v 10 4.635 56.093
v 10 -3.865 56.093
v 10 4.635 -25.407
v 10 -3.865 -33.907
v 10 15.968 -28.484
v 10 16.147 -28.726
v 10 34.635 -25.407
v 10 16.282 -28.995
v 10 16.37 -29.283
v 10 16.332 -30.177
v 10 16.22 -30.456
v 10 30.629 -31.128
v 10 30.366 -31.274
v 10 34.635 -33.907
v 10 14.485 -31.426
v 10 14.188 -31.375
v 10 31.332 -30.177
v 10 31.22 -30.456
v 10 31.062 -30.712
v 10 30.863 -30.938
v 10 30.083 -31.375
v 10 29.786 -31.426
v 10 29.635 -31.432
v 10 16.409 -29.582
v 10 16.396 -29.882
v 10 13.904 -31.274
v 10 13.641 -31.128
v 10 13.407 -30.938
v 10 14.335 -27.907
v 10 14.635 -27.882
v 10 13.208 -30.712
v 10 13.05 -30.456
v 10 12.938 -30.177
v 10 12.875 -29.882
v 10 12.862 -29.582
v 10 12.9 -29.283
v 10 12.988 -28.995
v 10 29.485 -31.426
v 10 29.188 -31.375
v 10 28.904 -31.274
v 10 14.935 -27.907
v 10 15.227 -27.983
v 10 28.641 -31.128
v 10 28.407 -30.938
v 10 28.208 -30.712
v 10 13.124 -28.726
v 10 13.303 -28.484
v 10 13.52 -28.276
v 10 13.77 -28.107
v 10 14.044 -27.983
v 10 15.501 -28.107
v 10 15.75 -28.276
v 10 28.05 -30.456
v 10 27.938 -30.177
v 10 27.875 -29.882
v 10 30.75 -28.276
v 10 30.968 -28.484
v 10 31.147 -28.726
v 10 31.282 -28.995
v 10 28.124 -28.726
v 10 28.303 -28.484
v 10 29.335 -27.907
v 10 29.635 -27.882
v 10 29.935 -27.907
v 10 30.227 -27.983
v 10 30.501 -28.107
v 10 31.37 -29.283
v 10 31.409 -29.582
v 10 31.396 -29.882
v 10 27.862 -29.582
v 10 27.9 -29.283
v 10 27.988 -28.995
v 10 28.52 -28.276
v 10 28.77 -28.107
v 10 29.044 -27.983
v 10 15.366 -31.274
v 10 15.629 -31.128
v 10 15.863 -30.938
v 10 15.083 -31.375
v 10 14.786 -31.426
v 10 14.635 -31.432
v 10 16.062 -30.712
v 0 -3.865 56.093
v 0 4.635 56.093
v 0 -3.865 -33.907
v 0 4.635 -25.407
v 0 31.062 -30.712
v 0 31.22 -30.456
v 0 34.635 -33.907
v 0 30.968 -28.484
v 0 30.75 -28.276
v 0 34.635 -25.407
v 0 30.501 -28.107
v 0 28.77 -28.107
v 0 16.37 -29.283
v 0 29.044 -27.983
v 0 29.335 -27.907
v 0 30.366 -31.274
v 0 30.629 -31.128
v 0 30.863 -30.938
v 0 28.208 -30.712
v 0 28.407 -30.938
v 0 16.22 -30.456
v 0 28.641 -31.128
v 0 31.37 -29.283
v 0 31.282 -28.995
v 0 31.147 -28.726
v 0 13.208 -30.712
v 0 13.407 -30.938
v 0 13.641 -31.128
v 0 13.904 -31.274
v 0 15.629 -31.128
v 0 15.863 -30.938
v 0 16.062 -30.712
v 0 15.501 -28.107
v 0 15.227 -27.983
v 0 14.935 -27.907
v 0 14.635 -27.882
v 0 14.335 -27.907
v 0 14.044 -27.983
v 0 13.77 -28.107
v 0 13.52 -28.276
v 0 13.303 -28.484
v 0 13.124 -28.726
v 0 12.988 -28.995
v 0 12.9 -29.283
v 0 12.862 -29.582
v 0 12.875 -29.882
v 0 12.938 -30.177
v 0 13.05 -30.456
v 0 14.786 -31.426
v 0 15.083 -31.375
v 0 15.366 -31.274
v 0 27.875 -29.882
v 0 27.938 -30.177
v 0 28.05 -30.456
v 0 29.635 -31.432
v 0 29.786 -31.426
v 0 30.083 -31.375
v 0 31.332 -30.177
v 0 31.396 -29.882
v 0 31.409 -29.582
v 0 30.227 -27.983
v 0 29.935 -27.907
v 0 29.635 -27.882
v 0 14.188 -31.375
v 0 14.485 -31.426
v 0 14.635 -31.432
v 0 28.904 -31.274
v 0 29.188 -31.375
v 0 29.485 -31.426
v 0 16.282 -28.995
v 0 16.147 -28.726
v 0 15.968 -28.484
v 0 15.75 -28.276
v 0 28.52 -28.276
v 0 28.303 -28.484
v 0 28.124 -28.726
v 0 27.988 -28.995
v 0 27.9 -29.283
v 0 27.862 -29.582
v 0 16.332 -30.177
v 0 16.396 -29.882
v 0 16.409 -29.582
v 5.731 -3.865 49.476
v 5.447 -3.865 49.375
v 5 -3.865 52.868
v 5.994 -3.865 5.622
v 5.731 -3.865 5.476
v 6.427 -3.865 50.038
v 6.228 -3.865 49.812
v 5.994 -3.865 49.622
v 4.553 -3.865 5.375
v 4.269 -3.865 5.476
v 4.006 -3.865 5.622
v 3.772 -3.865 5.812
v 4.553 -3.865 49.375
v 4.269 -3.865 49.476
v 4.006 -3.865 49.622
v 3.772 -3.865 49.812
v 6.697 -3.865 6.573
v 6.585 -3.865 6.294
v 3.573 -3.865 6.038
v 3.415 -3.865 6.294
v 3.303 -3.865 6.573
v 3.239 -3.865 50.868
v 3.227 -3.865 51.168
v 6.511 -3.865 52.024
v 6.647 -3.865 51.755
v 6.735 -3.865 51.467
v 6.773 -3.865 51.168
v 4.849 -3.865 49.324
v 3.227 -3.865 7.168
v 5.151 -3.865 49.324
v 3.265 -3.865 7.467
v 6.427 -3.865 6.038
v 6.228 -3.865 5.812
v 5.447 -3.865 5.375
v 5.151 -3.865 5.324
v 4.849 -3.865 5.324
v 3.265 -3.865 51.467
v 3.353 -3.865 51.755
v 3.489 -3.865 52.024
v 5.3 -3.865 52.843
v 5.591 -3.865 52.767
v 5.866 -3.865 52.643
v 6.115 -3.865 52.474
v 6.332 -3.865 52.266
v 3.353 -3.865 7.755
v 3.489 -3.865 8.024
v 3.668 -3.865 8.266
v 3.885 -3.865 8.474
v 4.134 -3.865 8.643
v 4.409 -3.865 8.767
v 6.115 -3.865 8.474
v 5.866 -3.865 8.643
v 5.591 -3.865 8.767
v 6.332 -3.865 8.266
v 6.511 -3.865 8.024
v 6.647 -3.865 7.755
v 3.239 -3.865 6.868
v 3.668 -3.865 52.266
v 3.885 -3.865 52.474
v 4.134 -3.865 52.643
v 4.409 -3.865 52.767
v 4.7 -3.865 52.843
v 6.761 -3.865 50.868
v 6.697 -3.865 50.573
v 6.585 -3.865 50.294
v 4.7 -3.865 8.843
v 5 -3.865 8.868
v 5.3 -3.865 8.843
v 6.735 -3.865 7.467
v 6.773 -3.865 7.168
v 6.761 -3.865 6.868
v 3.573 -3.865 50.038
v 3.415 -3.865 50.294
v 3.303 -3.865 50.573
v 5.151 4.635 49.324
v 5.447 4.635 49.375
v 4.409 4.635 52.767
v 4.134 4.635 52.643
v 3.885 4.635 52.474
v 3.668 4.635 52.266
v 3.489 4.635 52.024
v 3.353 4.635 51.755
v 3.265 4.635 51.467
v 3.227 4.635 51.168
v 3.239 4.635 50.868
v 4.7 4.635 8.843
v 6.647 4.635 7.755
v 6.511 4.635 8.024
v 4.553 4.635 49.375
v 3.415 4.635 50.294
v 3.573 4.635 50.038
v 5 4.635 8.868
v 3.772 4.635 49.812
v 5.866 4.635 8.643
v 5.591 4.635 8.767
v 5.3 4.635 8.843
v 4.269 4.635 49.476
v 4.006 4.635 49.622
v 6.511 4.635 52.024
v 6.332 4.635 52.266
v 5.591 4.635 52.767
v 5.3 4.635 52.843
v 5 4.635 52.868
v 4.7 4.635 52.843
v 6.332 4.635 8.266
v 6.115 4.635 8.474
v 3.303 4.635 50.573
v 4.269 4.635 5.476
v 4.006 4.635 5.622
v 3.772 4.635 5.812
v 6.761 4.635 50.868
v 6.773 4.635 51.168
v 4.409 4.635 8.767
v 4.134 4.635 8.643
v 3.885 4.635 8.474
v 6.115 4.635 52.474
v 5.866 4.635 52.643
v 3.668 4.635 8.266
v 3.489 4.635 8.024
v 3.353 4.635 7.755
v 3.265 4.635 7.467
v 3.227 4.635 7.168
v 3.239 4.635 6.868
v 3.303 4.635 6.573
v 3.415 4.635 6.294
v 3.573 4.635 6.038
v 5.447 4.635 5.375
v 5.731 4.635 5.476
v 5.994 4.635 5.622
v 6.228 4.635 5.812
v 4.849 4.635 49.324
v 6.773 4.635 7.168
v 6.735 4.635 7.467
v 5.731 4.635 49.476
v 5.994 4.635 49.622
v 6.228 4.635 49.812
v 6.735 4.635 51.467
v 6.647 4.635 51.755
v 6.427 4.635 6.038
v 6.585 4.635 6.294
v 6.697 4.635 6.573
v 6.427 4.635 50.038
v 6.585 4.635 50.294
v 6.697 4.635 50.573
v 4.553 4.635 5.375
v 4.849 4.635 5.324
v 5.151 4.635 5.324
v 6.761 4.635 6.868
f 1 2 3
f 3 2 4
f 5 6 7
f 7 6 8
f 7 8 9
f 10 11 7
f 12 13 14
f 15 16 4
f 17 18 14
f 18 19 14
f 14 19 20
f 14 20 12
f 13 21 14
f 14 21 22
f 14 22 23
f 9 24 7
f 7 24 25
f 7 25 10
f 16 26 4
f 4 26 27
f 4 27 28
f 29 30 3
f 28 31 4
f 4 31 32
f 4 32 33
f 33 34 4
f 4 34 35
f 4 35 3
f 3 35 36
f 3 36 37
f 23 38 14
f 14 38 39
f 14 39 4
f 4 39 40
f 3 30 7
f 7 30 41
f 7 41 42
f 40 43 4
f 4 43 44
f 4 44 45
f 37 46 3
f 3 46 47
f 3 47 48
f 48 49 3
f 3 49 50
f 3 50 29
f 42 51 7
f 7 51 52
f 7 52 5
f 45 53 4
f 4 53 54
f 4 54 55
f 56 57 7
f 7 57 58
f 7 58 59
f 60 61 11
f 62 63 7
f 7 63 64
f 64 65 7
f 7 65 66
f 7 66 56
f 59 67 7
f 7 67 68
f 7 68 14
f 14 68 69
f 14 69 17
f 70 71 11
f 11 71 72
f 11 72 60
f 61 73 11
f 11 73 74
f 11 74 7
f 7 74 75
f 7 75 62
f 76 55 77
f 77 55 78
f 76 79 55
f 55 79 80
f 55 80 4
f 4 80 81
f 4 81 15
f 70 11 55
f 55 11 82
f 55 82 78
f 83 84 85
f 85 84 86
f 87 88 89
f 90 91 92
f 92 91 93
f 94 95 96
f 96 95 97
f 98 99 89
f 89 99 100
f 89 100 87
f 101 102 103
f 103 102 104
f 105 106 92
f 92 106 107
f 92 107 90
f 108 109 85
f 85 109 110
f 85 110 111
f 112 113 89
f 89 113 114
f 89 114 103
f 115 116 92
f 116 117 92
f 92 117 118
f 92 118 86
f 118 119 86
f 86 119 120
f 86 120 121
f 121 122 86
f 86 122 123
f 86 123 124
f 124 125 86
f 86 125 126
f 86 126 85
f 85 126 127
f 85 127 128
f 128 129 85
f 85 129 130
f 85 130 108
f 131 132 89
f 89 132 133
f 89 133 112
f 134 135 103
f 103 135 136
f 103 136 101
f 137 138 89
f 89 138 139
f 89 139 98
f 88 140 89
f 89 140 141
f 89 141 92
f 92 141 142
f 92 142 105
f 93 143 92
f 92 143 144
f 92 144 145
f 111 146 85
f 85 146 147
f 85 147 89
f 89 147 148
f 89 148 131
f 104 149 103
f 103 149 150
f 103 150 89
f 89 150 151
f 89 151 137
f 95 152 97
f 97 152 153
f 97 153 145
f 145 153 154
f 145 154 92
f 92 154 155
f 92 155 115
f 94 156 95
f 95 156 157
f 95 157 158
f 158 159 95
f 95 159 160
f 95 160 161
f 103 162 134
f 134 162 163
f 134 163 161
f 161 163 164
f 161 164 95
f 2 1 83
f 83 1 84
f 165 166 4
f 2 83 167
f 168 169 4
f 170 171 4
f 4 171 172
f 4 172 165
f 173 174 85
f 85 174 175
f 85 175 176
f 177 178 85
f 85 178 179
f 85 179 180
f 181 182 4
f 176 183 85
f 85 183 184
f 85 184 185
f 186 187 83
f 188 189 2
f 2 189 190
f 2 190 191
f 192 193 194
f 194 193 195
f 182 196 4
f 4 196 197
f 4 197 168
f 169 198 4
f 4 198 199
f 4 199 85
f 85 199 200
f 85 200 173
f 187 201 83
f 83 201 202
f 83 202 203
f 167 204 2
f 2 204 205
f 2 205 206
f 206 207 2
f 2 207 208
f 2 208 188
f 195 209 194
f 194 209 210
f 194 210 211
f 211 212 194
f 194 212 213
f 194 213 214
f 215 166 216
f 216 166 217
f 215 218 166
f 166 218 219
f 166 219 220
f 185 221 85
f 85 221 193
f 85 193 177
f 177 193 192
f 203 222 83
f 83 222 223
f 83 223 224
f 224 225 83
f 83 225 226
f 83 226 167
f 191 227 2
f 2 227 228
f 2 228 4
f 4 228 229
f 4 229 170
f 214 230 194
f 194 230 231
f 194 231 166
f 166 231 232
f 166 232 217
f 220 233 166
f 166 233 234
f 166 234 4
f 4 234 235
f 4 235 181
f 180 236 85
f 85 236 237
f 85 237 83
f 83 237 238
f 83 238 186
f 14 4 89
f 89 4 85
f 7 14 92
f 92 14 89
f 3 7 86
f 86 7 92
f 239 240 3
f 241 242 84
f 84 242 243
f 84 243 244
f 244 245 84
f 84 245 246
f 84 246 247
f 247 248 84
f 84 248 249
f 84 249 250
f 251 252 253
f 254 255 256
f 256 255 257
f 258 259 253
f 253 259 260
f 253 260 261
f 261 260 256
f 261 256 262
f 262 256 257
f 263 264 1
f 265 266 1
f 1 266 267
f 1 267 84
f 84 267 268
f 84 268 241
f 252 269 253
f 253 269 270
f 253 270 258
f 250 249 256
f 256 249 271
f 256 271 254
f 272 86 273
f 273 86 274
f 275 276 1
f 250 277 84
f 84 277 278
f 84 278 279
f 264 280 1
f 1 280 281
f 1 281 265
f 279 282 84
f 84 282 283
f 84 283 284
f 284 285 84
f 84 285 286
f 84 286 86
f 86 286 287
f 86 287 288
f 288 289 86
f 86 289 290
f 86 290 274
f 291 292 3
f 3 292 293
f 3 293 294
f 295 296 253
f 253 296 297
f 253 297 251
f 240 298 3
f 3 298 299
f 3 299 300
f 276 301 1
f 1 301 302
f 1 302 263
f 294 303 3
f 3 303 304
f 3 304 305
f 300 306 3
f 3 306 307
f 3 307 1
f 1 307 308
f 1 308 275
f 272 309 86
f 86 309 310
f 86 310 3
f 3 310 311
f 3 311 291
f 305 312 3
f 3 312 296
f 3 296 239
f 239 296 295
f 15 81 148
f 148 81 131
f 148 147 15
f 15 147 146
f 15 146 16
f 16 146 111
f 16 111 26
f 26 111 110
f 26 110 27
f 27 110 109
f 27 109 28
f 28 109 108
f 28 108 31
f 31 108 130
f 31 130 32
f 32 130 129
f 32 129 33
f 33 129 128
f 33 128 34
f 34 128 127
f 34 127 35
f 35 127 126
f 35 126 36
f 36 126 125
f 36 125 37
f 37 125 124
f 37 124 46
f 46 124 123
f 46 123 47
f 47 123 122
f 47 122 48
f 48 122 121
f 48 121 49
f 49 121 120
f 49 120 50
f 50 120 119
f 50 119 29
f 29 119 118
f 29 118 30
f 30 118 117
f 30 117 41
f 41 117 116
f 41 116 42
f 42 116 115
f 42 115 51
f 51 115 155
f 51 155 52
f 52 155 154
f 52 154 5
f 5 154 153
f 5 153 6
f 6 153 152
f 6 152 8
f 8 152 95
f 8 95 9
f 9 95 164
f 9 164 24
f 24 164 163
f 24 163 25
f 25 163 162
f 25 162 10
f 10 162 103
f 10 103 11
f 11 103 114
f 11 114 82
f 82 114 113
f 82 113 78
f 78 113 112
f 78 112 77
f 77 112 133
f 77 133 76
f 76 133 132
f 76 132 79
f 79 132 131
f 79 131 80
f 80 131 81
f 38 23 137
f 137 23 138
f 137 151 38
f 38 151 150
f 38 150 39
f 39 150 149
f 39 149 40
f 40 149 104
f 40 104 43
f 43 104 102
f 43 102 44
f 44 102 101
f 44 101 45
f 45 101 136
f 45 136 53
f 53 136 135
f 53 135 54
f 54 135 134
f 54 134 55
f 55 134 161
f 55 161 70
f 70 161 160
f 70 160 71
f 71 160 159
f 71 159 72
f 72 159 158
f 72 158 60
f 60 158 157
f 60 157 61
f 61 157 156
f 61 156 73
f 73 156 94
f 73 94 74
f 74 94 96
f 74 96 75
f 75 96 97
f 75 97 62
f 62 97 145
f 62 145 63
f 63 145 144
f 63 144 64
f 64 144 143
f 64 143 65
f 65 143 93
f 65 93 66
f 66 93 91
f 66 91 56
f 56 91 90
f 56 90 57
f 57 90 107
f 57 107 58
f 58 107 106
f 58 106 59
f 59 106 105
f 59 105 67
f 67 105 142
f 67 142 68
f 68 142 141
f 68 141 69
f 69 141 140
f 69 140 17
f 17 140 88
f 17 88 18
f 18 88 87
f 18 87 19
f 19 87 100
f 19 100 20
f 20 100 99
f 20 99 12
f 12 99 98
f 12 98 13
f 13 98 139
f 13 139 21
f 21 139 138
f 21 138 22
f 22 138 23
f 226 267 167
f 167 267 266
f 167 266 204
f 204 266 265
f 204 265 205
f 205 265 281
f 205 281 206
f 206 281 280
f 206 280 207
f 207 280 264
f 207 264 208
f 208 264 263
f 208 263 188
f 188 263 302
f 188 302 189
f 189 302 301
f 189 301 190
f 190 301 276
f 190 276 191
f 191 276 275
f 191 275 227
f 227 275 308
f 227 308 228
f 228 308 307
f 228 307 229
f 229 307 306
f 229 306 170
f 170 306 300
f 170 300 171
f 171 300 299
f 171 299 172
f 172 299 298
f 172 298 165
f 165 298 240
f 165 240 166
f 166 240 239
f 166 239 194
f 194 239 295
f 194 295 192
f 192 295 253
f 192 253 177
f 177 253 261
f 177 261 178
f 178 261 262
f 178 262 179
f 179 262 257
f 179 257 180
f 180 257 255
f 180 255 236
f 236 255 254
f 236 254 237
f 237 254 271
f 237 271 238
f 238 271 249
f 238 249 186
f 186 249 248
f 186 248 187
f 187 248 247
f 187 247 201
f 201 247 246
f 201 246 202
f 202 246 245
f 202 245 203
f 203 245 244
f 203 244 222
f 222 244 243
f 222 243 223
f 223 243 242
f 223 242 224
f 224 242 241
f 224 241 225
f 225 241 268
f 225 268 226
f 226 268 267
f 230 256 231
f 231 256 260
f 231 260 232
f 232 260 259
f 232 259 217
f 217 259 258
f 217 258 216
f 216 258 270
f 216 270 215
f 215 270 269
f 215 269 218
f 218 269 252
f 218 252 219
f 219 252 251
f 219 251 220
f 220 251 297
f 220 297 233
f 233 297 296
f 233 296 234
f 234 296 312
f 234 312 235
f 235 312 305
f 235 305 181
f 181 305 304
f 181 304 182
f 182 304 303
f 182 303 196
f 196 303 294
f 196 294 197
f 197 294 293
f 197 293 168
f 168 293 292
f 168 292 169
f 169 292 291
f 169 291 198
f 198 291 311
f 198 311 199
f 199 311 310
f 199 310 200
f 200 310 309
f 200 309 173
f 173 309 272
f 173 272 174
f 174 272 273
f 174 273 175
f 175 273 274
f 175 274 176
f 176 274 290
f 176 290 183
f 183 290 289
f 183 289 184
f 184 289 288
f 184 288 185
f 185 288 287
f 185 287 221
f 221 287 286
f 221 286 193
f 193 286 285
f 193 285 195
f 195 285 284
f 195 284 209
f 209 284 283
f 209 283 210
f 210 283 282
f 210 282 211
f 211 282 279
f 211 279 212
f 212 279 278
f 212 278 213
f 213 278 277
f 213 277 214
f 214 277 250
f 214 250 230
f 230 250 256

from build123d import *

# Parameters (mm, degrees)
SKETCH1_R           = 1.775
BOSS_EXTRUDE1_DEPTH = 10
SKETCH2_R           = 1.775
CUT_EXTRUDE1_DEPTH  = 65.392818275


with BuildPart() as part:
    # Sketch1 → Boss-Extrude1 (new body)
    with BuildSketch(Plane(origin=(0, 0, 0), x_dir=(0, 0, -1), z_dir=(1, 0, 0))):
        Polygon((-56.093092672, 4.635278297), (25.406907328, 4.635278297), (25.406907328, 34.635278297), (33.906907328, 34.635278297), (33.906907328, -3.864721703), (-56.093092672, -3.864721703), align=None)
        with Locations((29.656907328, 14.635278297)):
            Circle(SKETCH1_R, mode=Mode.SUBTRACT)
        with Locations((29.656907328, 29.635278297)):
            Circle(SKETCH1_R, mode=Mode.SUBTRACT)
    extrude(amount=BOSS_EXTRUDE1_DEPTH)

    # Sketch2 → Cut-Extrude1 (cut, through all)
    with BuildSketch(Plane(origin=(0, 4.635278297, 0), x_dir=(1, 0, 0), z_dir=(0, 1, 0))):
        with Locations(Location((5, -51.093092672, 0), (0, 0, 270))):
            Circle(SKETCH2_R)
        with Locations(Location((5, -7.093092672, 0), (0, 0, 270))):
            Circle(SKETCH2_R)
    extrude(amount=-CUT_EXTRUDE1_DEPTH, mode=Mode.SUBTRACT)


solid = part.part
